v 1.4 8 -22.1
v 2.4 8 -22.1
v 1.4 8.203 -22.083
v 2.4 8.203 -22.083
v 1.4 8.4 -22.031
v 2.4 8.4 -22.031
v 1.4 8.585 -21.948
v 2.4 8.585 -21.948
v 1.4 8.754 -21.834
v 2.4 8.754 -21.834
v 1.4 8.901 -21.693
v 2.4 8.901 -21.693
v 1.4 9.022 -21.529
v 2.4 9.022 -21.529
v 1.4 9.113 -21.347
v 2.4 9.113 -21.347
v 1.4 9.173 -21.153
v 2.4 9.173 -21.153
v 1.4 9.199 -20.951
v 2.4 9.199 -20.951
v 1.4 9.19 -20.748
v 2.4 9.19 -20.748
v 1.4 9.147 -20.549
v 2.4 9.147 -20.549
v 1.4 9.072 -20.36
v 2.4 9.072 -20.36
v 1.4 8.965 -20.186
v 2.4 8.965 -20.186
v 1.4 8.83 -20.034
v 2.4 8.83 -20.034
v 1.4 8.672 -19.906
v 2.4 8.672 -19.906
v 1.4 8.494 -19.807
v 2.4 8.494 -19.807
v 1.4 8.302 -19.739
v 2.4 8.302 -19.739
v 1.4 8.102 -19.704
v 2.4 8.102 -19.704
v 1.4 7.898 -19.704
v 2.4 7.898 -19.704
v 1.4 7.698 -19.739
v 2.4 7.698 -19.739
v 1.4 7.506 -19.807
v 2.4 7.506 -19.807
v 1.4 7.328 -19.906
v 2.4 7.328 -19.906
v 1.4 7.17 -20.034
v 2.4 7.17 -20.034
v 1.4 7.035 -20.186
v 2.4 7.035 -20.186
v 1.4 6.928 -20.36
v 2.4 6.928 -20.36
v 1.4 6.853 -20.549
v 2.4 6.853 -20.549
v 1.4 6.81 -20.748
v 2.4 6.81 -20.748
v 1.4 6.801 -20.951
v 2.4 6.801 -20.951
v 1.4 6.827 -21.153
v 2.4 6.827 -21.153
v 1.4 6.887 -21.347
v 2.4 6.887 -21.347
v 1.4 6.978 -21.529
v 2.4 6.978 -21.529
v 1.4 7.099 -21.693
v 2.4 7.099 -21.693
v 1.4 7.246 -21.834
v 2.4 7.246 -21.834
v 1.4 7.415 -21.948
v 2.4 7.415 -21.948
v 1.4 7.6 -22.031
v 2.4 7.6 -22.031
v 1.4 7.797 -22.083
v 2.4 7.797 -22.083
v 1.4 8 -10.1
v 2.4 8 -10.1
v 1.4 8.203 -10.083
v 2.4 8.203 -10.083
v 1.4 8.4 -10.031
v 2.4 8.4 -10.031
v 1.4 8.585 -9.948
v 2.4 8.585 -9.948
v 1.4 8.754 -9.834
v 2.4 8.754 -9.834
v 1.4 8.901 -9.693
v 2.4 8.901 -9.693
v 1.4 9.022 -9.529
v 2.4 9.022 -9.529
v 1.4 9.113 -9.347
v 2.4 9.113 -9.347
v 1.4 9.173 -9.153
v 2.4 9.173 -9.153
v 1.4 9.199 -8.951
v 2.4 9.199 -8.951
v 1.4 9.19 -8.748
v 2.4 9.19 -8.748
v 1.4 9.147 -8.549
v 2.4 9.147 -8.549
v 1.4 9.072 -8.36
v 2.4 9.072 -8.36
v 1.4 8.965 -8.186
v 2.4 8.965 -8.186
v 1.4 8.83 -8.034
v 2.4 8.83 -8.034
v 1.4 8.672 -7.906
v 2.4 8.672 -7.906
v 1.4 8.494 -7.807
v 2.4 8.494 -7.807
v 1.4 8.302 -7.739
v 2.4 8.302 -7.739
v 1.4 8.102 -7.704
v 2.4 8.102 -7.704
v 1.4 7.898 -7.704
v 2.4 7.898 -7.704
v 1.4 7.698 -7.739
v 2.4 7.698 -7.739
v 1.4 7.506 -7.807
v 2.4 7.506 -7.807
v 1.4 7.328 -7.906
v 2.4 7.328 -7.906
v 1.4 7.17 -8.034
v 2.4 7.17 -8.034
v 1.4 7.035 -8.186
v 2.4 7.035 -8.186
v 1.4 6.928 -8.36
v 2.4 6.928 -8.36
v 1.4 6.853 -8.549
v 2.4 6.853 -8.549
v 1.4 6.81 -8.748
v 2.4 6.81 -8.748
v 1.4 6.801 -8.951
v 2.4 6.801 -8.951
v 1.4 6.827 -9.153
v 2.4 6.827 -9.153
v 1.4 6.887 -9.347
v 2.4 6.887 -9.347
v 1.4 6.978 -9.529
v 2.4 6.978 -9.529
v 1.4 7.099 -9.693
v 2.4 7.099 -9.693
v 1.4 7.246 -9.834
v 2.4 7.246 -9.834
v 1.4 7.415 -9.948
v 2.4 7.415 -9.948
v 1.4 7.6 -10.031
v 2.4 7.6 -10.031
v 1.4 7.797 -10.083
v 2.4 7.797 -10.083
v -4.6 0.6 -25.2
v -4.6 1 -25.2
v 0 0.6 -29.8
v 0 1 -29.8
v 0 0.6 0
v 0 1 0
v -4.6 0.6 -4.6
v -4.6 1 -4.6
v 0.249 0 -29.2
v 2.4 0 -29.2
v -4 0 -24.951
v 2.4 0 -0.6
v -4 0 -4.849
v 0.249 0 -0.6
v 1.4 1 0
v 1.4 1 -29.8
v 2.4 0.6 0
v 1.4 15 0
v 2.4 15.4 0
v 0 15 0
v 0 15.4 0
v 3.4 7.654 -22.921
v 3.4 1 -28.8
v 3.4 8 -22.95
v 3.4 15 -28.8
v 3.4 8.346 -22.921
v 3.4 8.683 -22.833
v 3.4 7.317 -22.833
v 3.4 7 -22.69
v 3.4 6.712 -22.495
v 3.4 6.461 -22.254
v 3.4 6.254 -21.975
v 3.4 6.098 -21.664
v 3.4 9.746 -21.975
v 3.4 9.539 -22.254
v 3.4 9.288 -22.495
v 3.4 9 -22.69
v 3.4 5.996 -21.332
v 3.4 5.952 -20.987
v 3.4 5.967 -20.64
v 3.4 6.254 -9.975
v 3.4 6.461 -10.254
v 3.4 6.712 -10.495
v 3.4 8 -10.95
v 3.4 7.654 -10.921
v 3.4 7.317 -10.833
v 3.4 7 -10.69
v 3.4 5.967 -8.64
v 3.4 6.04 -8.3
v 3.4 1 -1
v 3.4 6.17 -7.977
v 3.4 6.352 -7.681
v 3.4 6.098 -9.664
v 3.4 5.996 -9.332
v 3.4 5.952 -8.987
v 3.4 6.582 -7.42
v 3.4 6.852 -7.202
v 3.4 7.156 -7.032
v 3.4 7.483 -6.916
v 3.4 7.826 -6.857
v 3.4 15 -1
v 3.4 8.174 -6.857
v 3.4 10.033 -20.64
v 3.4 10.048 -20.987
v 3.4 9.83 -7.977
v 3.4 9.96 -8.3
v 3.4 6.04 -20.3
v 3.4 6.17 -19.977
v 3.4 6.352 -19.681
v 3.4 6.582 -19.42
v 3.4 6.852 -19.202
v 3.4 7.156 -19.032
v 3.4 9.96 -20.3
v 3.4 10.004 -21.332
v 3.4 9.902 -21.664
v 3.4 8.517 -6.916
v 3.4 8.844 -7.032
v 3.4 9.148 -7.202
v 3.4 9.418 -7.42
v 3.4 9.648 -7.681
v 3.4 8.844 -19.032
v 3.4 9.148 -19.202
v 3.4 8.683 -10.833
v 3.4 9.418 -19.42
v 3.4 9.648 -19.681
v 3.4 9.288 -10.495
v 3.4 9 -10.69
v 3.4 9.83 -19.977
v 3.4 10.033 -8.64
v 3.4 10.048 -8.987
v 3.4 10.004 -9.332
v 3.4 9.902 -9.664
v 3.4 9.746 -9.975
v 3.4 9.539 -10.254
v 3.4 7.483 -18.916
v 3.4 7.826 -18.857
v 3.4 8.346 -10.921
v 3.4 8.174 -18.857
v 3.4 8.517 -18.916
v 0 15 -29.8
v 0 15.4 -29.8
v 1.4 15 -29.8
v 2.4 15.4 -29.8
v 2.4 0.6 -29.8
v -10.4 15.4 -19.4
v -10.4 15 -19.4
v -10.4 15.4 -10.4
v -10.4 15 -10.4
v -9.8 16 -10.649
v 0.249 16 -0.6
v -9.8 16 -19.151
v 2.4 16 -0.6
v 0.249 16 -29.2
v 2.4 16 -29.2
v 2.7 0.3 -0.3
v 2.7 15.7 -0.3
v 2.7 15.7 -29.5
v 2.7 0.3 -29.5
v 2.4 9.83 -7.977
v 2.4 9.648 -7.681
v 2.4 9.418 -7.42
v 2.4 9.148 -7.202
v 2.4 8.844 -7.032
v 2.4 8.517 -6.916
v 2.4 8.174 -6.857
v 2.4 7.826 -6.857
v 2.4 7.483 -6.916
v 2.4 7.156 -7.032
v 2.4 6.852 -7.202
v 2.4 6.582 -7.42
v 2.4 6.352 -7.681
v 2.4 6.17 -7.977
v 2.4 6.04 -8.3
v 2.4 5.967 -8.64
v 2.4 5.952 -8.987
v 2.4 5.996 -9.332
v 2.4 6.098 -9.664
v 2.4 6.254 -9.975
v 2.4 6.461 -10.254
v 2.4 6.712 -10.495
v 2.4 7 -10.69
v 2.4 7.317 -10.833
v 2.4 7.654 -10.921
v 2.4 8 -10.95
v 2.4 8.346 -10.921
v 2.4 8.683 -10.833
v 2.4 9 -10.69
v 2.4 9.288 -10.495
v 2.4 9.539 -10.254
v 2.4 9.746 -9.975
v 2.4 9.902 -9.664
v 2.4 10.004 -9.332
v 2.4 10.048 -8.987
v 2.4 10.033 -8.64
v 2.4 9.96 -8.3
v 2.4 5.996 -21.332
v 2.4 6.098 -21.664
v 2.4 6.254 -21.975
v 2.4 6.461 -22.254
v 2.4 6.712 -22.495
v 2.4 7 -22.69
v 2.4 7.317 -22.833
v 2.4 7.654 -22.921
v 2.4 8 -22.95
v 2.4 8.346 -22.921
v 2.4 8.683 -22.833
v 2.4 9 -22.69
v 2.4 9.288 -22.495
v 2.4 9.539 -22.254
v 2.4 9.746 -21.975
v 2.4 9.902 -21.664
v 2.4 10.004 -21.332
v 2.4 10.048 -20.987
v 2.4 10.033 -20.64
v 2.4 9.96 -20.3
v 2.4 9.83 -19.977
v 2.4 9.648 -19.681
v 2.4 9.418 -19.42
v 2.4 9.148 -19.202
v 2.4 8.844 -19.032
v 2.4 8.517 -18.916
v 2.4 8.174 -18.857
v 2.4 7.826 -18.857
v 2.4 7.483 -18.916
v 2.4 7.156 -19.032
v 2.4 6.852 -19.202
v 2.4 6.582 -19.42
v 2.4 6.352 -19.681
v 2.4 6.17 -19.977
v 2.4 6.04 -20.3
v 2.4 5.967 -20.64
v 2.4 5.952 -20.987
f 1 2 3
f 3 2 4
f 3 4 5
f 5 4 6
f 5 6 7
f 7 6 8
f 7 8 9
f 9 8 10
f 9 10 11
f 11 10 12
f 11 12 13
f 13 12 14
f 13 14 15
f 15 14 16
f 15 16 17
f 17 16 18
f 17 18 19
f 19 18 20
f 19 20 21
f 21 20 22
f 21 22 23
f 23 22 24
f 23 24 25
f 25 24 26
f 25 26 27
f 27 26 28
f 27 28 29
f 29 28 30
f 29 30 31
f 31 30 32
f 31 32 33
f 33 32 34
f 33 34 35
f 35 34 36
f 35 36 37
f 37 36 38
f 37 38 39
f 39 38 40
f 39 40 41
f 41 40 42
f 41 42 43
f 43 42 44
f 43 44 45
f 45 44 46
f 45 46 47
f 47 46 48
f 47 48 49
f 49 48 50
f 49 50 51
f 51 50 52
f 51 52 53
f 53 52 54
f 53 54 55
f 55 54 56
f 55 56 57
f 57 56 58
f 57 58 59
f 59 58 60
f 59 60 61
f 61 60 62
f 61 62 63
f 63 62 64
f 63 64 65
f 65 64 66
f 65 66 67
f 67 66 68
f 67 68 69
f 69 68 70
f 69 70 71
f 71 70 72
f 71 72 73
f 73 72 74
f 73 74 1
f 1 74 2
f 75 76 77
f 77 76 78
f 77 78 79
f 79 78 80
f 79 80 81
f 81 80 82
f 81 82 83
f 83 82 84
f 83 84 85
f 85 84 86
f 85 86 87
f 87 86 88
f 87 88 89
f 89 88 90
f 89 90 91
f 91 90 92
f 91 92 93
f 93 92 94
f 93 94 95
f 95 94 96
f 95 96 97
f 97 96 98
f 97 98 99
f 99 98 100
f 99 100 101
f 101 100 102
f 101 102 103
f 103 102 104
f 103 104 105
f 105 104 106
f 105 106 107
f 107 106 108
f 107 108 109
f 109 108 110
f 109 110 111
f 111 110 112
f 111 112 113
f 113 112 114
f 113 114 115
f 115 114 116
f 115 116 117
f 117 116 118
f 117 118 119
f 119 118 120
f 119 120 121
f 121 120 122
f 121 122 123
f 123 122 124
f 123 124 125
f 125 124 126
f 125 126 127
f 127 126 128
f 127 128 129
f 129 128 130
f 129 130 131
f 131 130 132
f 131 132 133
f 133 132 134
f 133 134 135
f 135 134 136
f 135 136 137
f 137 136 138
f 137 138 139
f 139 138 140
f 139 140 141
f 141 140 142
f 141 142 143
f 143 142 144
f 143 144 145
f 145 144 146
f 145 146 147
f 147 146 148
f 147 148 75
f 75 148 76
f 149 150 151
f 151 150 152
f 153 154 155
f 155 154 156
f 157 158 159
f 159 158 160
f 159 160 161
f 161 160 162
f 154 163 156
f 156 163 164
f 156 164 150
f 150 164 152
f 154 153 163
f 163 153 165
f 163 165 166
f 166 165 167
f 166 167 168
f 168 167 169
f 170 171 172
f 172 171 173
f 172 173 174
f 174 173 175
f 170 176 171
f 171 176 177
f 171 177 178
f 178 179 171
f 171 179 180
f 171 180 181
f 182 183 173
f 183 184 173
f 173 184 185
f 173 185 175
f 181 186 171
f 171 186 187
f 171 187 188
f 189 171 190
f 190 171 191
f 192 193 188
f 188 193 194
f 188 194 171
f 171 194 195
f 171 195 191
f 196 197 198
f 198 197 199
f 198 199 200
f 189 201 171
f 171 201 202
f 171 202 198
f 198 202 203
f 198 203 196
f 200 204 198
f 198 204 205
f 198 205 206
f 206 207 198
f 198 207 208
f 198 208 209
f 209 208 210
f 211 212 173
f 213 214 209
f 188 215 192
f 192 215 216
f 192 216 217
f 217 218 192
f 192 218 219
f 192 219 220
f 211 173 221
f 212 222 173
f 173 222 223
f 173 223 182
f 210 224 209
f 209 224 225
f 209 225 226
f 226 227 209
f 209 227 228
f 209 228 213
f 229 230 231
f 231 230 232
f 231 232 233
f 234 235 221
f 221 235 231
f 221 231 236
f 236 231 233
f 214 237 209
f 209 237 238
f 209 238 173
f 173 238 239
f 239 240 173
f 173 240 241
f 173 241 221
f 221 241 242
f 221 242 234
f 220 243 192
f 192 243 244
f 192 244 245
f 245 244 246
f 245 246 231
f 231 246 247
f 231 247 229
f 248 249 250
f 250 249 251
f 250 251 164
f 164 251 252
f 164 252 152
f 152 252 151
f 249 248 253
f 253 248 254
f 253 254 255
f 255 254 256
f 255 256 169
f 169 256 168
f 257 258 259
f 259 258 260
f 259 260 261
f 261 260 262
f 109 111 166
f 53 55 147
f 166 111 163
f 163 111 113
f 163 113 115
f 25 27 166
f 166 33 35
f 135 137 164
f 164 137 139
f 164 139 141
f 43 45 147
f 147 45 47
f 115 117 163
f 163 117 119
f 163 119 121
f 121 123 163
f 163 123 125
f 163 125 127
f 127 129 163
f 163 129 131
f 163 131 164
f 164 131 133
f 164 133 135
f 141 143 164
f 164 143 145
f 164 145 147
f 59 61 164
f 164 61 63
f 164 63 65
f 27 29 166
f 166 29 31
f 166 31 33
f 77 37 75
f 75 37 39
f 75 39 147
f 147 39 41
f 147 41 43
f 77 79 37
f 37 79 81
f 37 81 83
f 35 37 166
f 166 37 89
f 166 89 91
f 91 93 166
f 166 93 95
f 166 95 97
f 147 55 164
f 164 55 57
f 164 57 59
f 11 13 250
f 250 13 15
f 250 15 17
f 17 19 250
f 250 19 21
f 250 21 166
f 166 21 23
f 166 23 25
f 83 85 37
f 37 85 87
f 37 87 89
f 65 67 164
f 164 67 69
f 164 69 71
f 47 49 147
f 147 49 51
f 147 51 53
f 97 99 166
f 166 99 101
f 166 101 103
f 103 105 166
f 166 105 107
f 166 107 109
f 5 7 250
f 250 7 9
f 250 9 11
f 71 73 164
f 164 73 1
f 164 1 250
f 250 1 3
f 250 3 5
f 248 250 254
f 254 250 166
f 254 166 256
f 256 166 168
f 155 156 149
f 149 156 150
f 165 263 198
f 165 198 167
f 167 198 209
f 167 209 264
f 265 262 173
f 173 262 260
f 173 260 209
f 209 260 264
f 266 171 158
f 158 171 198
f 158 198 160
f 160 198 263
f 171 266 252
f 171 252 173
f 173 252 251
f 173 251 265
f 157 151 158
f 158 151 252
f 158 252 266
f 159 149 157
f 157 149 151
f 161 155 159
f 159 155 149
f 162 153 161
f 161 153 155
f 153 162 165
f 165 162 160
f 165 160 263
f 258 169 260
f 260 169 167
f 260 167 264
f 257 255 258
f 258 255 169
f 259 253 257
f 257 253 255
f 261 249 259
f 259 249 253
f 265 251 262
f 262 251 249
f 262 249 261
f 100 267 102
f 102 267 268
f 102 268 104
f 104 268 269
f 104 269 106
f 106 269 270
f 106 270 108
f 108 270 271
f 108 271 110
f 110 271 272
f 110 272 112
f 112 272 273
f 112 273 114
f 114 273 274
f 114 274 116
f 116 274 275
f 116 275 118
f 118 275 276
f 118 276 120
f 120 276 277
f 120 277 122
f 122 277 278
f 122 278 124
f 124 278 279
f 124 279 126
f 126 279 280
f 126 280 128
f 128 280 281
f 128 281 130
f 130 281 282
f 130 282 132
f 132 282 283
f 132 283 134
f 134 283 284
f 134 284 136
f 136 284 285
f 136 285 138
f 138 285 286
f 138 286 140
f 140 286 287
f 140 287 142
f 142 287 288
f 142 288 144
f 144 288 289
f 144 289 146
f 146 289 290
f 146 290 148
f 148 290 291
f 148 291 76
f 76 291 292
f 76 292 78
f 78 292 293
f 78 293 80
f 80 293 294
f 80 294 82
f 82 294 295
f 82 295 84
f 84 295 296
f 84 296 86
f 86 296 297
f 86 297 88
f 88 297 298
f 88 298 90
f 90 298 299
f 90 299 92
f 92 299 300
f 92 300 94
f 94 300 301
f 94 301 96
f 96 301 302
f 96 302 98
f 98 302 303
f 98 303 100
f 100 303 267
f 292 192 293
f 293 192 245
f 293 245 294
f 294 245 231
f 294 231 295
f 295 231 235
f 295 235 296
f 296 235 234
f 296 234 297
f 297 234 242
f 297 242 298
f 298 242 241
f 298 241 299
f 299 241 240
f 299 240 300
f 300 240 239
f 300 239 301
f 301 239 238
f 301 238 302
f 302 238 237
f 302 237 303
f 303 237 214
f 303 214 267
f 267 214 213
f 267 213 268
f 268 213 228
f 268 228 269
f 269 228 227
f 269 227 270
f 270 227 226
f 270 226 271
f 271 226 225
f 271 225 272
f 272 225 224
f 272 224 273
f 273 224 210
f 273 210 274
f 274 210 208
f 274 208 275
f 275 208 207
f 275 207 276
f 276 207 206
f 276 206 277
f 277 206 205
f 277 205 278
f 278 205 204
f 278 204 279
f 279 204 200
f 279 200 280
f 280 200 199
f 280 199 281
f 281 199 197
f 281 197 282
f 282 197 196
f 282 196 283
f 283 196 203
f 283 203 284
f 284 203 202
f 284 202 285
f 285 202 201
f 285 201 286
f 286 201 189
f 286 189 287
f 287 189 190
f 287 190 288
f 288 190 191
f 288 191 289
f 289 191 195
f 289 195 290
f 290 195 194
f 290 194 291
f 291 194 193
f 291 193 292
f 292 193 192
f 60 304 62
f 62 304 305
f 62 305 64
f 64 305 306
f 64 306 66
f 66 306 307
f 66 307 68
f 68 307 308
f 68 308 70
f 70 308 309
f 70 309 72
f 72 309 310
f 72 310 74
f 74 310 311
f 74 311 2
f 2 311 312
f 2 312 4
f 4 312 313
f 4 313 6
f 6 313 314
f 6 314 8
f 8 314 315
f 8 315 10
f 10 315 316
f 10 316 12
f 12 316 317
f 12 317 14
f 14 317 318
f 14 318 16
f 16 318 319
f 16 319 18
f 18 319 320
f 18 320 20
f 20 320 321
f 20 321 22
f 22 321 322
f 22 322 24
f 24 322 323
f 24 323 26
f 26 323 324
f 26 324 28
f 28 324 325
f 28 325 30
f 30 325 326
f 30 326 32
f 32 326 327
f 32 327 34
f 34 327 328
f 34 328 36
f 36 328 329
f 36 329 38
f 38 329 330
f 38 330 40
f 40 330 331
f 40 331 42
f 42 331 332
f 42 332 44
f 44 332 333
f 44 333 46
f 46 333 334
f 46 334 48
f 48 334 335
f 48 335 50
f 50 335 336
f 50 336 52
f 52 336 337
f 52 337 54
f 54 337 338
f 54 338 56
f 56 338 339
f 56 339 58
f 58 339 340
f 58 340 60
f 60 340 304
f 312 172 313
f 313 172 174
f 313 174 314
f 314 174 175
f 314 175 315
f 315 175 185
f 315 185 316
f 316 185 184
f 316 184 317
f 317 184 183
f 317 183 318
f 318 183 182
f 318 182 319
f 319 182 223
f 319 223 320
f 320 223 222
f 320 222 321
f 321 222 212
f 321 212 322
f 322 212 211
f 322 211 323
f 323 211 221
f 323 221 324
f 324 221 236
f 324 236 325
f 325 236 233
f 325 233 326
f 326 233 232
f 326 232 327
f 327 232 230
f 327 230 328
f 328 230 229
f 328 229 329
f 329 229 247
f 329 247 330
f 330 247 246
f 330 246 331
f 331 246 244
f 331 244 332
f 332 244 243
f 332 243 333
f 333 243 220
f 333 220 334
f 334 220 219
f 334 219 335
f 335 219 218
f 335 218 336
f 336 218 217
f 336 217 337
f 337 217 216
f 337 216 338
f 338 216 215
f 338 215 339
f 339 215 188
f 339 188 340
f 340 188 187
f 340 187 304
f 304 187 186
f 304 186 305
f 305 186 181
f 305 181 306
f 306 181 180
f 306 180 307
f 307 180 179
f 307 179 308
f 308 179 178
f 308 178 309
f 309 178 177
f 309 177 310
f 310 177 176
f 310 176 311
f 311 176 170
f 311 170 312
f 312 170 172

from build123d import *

# Parameters (mm, degrees)
EXTRUDE_1_DEPTH     = 16
CUT_EXTRUDE_START   = 1
CUT_EXTRUDE_1_DEPTH = 14
SKETCH_4_W          = 35.141232352
SKETCH_4_H          = 2.32880635
CUT_EXTRUDE_4_DEPTH = 5.8
CHAMFER_2_SIZE      = 1
CHAMFER_1_SIZE      = 0.6
CUT_EXTRUDE_2_REACH = 38.531
SKETCH_2_R          = 1.2
SKETCH_3_R          = 2.05
CUT_EXTRUDE_3_DEPTH = 1


with BuildPart() as part:
    # 草图1 → 凸台-拉伸1 (new body)
    with BuildSketch(Plane(origin=(0, 0, 0), x_dir=(1, 0, 0), z_dir=(0, 1, 0))):
        Polygon((-10.4, 10.4), (0, 0), (3.4, 0), (3.4, 29.8), (0, 29.8), (-10.4, 19.4), align=None)
    extrude(amount=EXTRUDE_1_DEPTH)

    # 草图1<3> → 切除-拉伸1 (cut)
    with BuildSketch(Plane(origin=(0, 0, 0), x_dir=(1, 0, 0), z_dir=(0, 1, 0)).offset(CUT_EXTRUDE_START)):
        Polygon((-10.4, 10.4), (0, 0), (1.4, 0), (1.4, 29.8), (0, 29.8), (-10.4, 19.4), align=None)
    extrude(amount=CUT_EXTRUDE_1_DEPTH, mode=Mode.SUBTRACT)

    # 草图4 → 切除-拉伸4 (cut)
    with BuildSketch(Plane.ZY.offset(10.4)):
        with Locations((-15.55462397, -0.164403175)):
            Rectangle(SKETCH_4_W, SKETCH_4_H)
    extrude(amount=-CUT_EXTRUDE_4_DEPTH, mode=Mode.SUBTRACT)

    # 倒角2
    chamfer_2_edges = [part.edges().sort_by_distance(p)[0] for p in [
        (3.4, 8, -29.8),
        (3.4, 8, 0),
        (3.4, 16, -14.9),
        (3.4, 0, -14.9),
    ]]
    chamfer(chamfer_2_edges, length=CHAMFER_2_SIZE)

    # 倒角1
    chamfer_1_edges = [part.edges().sort_by_distance(p)[0] for p in [
        (1.2, 0, -29.8),
        (1.2, 0, 0),
        (-2.3, 0, -2.3),
        (-2.3, 0, -27.5),
        (1.2, 16, -29.8),
        (1.2, 16, 0),
        (-5.2, 16, -24.6),
        (-5.2, 16, -5.2),
        (-10.4, 16, -14.9),
        (-4.6, 0, -14.9),
    ]]
    chamfer(chamfer_1_edges, length=CHAMFER_1_SIZE)

    # 草图2 → 切除-拉伸2 (cut, up to next)
    with BuildSketch(Plane(origin=(3.4, 0, 0), x_dir=(0, 0, -1), z_dir=(1, 0, 0)), mode=Mode.PRIVATE) as cut_extrude_2_sk1:
        with Locations((8.9, 8)):
            Circle(SKETCH_2_R)
    cut_extrude_2_tool1 = extrude(cut_extrude_2_sk1.sketch, amount=-CUT_EXTRUDE_2_REACH, mode=Mode.PRIVATE) & part.part
    # 草图2 → 切除-拉伸2 (cut, up to next)
    with BuildSketch(Plane(origin=(3.4, 0, 0), x_dir=(0, 0, -1), z_dir=(1, 0, 0)), mode=Mode.PRIVATE) as cut_extrude_2_sk2:
        with Locations((20.9, 8)):
            Circle(SKETCH_2_R)
    cut_extrude_2_tool2 = extrude(cut_extrude_2_sk2.sketch, amount=-CUT_EXTRUDE_2_REACH, mode=Mode.PRIVATE) & part.part
    add(cut_extrude_2_tool1.solids().sort_by_distance((3.4, 8, -8.9))[0], mode=Mode.SUBTRACT)
    add(cut_extrude_2_tool2.solids().sort_by_distance((3.4, 8, -20.9))[0], mode=Mode.SUBTRACT)

    # 草图3 → 切除-拉伸3 (cut)
    with BuildSketch(Plane(origin=(3.4, 0, 0), x_dir=(0, 0, -1), z_dir=(1, 0, 0))):
        with Locations((8.9, 8)):
            Circle(SKETCH_3_R)
        with Locations((20.9, 8)):
            Circle(SKETCH_3_R)
    extrude(amount=-CUT_EXTRUDE_3_DEPTH, mode=Mode.SUBTRACT)


solid = part.part
